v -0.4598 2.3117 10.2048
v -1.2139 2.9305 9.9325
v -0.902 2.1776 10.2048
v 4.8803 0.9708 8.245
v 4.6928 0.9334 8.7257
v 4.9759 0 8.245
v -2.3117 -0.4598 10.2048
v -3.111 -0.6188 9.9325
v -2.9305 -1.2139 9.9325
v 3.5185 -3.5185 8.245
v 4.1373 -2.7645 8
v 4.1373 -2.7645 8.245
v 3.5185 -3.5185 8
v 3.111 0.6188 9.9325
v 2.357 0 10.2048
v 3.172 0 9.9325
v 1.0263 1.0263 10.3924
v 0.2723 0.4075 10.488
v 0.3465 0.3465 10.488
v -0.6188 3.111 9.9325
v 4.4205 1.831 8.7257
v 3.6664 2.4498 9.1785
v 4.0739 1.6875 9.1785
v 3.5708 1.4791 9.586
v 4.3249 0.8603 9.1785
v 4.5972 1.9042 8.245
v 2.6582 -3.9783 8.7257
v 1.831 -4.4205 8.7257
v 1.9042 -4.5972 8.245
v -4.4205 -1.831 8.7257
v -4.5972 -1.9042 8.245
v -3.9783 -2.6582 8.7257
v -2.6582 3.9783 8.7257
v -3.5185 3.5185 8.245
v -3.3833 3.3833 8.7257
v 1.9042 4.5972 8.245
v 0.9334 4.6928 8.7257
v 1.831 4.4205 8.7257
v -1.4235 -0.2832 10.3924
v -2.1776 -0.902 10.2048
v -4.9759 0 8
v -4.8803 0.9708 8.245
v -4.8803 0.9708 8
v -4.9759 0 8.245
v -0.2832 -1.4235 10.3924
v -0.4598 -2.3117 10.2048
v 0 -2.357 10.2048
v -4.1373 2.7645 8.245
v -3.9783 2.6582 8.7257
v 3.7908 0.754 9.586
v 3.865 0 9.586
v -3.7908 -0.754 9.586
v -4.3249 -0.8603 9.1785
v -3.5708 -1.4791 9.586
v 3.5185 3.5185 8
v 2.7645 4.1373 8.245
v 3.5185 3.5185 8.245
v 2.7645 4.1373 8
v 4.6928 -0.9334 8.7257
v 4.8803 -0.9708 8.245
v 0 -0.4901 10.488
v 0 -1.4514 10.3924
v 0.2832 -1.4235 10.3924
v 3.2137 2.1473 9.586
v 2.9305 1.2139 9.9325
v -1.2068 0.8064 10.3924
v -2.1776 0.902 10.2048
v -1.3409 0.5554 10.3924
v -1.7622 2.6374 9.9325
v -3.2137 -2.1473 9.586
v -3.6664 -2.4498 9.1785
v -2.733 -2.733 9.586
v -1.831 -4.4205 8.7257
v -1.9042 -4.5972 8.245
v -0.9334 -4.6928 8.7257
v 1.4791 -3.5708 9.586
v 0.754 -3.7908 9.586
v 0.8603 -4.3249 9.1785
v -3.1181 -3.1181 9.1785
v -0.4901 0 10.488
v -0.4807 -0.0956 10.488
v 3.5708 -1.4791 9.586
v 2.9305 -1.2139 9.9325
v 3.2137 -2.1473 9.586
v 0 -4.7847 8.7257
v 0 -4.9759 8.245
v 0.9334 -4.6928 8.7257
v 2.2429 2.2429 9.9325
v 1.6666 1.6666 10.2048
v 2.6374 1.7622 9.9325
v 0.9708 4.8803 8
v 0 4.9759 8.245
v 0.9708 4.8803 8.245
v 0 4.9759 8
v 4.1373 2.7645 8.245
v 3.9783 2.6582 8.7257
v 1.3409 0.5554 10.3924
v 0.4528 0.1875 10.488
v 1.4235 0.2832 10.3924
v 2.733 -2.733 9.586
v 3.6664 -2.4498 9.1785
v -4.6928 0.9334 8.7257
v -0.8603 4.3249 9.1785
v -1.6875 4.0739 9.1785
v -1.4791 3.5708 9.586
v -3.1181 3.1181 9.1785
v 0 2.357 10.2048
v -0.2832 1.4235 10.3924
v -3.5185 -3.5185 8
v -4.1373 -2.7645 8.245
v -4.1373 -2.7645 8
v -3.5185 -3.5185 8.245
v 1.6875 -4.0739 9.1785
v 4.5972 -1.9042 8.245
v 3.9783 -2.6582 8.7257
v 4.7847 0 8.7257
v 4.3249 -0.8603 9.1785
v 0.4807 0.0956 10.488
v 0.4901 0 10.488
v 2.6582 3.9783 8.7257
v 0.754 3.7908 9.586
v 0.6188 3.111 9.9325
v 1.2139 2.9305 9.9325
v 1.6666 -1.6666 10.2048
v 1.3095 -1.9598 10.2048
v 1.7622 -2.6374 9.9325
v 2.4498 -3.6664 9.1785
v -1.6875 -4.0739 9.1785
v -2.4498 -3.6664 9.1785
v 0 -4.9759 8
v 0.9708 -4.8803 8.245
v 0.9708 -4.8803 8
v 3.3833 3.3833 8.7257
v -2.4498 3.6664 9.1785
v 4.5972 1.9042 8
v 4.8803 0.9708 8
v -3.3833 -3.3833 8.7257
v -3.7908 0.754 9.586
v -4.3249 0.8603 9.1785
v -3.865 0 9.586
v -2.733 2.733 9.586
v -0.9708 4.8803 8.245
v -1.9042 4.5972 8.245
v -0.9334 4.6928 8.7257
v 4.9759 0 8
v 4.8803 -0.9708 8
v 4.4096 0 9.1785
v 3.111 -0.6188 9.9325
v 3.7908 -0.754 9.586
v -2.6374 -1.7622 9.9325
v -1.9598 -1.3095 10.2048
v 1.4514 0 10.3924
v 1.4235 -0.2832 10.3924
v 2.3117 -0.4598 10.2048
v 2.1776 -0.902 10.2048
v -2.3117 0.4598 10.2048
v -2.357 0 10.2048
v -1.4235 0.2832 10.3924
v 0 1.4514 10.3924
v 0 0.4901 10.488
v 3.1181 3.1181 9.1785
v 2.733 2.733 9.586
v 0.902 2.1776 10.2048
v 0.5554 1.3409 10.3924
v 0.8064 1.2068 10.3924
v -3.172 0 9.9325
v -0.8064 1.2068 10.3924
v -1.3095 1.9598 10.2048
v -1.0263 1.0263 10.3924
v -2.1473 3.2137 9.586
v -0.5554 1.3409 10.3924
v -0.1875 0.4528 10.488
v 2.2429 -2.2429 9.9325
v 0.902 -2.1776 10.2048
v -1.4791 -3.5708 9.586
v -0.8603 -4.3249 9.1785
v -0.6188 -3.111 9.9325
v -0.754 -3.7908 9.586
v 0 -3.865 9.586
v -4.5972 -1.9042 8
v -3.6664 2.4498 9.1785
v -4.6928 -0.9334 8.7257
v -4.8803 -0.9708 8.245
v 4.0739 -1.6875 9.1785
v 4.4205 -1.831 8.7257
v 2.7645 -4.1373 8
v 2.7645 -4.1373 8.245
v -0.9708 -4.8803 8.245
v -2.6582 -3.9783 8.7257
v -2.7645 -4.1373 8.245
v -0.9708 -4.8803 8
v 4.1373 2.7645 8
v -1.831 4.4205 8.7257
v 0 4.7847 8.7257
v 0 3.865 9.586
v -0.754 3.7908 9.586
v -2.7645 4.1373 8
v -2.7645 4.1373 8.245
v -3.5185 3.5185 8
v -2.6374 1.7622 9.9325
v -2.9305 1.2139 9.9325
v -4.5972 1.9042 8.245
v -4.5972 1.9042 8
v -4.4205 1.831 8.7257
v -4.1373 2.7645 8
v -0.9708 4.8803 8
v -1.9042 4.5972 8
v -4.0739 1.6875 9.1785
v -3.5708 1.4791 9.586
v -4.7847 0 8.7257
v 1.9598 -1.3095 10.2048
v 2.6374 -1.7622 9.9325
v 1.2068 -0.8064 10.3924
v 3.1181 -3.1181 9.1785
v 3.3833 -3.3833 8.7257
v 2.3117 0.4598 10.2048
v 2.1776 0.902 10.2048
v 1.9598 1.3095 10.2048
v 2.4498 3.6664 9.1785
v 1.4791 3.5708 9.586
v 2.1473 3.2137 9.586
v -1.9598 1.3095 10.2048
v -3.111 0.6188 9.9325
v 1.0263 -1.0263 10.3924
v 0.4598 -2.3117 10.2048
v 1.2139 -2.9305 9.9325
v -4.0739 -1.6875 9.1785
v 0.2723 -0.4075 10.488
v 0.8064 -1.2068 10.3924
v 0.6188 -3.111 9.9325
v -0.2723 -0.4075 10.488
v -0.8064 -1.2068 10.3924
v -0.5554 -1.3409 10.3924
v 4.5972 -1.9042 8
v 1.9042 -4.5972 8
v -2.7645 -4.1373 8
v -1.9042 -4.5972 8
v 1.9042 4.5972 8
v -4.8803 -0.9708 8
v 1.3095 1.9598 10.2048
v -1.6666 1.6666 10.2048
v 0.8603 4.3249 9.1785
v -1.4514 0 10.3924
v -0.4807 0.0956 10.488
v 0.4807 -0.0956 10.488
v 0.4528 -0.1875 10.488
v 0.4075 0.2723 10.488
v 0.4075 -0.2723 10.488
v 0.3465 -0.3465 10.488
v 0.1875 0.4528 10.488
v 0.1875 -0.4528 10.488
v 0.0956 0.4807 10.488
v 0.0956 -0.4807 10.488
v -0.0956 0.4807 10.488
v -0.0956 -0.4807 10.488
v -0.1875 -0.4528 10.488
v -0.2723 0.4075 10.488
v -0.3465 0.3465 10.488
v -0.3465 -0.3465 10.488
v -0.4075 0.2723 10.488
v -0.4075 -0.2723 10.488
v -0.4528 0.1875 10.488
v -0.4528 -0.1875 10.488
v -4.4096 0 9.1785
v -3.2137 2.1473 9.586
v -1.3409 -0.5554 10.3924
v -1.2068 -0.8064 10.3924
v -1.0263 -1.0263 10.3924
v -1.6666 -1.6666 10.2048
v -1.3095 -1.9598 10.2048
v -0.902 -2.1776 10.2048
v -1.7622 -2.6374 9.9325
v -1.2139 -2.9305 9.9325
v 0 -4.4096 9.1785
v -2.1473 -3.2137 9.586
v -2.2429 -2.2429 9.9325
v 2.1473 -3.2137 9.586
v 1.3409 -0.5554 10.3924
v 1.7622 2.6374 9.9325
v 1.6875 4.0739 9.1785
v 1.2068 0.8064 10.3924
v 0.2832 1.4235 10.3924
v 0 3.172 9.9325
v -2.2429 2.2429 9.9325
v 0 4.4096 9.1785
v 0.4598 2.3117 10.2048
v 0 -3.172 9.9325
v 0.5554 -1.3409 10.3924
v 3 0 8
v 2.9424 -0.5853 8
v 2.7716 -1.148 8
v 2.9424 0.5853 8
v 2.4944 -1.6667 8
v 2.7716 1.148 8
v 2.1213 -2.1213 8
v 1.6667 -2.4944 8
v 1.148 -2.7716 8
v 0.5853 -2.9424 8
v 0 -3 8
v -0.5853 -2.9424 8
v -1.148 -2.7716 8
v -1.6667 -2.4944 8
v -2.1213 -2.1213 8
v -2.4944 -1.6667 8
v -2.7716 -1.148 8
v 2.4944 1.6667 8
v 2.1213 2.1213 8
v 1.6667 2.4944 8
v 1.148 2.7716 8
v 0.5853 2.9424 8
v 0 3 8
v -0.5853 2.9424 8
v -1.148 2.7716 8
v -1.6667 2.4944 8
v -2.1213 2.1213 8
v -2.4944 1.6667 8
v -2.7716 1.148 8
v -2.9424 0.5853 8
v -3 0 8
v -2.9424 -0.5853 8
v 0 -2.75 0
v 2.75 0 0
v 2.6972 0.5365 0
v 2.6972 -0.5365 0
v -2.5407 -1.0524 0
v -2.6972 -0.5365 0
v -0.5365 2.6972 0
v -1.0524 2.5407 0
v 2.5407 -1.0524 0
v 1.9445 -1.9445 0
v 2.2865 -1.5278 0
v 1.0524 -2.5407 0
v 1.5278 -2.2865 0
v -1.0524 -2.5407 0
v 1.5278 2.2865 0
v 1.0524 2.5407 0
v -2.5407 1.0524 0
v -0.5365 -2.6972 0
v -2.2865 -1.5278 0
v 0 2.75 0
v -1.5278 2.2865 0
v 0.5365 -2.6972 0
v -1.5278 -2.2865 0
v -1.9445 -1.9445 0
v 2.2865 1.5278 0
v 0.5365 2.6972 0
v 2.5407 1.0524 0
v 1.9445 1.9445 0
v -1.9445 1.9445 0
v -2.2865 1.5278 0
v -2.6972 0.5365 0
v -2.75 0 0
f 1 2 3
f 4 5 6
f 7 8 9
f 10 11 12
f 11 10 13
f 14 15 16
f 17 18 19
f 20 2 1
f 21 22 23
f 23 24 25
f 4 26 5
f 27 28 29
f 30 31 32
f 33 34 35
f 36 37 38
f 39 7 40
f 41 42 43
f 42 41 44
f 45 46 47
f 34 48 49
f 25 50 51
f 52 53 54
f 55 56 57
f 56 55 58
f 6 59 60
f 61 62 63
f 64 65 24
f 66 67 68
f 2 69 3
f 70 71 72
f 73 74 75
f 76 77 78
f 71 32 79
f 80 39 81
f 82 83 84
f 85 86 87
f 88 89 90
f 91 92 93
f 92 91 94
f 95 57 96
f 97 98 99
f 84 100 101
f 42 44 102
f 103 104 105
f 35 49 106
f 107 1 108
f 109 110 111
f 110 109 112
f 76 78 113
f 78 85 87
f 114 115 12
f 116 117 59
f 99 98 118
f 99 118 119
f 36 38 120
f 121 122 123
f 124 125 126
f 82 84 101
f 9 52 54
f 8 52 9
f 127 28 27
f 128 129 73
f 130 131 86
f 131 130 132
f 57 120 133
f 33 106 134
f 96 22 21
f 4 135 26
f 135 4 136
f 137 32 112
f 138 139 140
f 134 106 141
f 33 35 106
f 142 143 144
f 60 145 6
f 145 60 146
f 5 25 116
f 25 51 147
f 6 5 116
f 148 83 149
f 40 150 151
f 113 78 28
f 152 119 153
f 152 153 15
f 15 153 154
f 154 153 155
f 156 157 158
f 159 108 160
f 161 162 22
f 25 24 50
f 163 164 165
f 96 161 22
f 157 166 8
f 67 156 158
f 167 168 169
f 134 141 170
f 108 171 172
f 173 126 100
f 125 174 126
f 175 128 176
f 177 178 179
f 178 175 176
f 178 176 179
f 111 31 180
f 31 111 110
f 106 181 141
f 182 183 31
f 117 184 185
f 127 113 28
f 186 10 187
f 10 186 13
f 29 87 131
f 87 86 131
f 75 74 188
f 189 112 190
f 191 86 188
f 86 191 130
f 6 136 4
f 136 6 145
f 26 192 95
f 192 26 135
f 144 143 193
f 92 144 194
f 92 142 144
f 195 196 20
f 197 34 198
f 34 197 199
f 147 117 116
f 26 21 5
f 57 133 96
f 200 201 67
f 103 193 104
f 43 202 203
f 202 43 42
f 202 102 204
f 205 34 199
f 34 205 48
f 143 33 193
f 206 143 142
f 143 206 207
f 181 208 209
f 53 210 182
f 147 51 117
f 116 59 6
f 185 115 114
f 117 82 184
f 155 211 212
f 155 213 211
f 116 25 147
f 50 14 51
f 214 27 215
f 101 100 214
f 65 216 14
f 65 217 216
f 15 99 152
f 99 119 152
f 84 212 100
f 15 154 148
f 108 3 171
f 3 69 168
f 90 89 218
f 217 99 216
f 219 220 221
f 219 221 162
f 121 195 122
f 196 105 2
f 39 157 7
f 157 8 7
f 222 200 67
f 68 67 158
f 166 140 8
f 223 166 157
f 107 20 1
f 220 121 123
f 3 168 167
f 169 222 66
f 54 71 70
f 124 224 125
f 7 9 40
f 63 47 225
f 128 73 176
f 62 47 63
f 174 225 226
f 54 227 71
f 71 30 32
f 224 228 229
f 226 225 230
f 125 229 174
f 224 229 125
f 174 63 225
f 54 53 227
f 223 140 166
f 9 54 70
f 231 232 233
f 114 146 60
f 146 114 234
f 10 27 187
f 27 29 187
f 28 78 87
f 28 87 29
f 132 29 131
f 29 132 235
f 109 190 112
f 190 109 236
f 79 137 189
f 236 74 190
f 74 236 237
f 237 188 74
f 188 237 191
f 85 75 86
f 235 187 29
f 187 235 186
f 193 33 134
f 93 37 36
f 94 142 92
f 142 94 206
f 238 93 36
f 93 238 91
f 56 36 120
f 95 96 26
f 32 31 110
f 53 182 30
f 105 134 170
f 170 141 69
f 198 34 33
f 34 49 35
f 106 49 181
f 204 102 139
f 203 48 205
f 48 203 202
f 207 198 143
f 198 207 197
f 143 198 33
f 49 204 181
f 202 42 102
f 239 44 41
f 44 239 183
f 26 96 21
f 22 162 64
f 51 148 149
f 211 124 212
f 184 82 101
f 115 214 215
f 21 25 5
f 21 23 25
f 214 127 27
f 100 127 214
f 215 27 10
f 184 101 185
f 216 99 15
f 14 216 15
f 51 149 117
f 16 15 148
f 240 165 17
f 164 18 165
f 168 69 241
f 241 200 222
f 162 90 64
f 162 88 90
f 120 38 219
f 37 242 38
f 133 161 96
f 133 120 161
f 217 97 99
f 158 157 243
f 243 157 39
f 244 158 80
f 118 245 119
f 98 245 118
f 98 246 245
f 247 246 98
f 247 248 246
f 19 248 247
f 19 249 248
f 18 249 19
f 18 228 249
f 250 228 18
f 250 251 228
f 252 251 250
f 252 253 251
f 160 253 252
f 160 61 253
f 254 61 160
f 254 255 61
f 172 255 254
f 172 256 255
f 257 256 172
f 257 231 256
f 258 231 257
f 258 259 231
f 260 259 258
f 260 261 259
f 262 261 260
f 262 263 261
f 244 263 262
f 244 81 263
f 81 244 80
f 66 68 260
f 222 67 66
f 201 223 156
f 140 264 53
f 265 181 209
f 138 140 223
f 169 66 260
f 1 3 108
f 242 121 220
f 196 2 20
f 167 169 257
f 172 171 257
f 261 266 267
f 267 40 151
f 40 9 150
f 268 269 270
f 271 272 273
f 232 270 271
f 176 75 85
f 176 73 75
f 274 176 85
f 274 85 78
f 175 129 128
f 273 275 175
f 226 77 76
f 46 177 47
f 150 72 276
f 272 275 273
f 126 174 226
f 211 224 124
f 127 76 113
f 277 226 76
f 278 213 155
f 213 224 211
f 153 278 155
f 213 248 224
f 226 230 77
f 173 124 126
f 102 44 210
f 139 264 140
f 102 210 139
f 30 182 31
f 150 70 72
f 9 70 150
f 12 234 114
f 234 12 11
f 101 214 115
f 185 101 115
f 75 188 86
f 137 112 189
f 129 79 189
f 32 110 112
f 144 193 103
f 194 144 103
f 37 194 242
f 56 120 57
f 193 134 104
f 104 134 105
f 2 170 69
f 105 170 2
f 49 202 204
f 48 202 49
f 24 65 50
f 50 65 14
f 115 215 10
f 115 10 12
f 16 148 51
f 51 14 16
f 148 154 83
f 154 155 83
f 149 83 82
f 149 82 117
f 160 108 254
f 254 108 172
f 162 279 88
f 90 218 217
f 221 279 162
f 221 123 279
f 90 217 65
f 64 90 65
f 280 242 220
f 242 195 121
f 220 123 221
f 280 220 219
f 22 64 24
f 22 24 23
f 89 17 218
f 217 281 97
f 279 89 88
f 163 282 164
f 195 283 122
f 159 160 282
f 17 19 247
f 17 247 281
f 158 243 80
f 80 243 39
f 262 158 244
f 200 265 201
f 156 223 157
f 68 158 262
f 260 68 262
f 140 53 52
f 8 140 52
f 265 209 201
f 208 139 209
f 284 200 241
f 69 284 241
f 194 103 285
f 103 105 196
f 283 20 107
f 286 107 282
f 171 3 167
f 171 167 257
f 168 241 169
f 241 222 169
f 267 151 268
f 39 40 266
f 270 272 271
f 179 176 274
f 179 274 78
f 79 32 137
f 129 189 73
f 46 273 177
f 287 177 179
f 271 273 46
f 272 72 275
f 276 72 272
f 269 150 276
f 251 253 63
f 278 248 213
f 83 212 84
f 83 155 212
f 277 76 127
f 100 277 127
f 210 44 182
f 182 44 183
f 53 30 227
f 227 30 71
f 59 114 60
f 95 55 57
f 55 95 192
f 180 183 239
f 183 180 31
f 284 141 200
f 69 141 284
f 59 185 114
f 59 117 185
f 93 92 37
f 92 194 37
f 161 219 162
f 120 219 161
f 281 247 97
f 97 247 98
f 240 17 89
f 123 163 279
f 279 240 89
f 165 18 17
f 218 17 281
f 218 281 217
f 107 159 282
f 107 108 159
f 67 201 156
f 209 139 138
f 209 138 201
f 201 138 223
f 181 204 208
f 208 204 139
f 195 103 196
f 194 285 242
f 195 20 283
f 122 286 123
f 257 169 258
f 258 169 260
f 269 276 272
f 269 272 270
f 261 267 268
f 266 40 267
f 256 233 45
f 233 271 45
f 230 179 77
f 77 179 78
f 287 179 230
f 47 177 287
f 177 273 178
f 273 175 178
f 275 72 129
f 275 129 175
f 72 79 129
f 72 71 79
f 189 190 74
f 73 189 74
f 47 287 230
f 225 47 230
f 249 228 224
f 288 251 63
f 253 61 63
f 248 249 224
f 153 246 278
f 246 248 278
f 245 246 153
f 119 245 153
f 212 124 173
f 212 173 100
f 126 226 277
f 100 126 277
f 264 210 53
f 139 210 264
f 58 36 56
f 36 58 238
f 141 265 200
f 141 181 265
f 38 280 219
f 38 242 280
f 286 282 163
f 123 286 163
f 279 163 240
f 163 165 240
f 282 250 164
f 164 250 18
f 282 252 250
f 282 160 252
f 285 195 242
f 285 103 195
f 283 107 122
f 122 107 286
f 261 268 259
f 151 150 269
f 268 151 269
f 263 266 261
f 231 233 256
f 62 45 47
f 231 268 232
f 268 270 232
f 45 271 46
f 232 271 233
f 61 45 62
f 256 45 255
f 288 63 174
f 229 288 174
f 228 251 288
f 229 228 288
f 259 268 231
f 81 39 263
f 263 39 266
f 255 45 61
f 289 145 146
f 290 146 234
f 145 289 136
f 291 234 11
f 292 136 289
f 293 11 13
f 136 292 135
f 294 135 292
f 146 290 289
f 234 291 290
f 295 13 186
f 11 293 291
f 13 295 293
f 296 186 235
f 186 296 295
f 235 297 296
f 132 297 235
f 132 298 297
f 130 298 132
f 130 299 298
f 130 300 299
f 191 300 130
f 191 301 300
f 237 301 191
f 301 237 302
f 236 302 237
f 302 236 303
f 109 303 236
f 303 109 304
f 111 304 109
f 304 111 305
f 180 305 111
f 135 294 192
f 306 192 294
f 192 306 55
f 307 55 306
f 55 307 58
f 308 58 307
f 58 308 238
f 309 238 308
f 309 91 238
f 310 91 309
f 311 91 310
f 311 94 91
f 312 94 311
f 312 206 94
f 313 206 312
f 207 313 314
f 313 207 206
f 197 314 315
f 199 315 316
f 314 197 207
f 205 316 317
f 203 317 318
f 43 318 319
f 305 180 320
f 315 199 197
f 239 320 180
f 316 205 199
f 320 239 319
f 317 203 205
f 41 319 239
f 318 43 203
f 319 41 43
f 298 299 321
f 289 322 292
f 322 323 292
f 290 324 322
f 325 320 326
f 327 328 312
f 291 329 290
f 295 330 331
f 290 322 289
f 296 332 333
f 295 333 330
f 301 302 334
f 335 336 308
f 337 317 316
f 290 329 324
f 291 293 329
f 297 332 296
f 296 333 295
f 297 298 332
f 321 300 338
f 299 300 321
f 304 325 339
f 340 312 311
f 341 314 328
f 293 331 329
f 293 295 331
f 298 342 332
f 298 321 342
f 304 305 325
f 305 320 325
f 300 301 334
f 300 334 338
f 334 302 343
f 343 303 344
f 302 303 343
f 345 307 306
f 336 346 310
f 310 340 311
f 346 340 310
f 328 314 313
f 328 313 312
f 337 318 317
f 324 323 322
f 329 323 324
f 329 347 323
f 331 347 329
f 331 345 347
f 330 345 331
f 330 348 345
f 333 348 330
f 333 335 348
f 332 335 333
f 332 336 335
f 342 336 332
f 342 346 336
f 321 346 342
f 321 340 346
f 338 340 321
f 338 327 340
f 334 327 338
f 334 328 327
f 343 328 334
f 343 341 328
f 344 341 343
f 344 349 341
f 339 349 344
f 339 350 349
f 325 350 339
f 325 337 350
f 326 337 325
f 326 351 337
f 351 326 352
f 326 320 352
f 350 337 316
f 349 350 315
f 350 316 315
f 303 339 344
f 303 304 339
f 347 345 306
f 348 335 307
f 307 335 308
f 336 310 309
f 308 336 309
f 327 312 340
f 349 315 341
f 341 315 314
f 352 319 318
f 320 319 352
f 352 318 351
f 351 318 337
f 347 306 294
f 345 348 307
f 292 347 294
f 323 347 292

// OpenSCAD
$fn=32;
cylinder(r1=5.5/2,r2=6/2,h=8);
translate([0,0,8])
scale([1,1,0.5])
difference(){
sphere(r=10/2);
translate([0,0,-10])cube(20,center=true);
}
